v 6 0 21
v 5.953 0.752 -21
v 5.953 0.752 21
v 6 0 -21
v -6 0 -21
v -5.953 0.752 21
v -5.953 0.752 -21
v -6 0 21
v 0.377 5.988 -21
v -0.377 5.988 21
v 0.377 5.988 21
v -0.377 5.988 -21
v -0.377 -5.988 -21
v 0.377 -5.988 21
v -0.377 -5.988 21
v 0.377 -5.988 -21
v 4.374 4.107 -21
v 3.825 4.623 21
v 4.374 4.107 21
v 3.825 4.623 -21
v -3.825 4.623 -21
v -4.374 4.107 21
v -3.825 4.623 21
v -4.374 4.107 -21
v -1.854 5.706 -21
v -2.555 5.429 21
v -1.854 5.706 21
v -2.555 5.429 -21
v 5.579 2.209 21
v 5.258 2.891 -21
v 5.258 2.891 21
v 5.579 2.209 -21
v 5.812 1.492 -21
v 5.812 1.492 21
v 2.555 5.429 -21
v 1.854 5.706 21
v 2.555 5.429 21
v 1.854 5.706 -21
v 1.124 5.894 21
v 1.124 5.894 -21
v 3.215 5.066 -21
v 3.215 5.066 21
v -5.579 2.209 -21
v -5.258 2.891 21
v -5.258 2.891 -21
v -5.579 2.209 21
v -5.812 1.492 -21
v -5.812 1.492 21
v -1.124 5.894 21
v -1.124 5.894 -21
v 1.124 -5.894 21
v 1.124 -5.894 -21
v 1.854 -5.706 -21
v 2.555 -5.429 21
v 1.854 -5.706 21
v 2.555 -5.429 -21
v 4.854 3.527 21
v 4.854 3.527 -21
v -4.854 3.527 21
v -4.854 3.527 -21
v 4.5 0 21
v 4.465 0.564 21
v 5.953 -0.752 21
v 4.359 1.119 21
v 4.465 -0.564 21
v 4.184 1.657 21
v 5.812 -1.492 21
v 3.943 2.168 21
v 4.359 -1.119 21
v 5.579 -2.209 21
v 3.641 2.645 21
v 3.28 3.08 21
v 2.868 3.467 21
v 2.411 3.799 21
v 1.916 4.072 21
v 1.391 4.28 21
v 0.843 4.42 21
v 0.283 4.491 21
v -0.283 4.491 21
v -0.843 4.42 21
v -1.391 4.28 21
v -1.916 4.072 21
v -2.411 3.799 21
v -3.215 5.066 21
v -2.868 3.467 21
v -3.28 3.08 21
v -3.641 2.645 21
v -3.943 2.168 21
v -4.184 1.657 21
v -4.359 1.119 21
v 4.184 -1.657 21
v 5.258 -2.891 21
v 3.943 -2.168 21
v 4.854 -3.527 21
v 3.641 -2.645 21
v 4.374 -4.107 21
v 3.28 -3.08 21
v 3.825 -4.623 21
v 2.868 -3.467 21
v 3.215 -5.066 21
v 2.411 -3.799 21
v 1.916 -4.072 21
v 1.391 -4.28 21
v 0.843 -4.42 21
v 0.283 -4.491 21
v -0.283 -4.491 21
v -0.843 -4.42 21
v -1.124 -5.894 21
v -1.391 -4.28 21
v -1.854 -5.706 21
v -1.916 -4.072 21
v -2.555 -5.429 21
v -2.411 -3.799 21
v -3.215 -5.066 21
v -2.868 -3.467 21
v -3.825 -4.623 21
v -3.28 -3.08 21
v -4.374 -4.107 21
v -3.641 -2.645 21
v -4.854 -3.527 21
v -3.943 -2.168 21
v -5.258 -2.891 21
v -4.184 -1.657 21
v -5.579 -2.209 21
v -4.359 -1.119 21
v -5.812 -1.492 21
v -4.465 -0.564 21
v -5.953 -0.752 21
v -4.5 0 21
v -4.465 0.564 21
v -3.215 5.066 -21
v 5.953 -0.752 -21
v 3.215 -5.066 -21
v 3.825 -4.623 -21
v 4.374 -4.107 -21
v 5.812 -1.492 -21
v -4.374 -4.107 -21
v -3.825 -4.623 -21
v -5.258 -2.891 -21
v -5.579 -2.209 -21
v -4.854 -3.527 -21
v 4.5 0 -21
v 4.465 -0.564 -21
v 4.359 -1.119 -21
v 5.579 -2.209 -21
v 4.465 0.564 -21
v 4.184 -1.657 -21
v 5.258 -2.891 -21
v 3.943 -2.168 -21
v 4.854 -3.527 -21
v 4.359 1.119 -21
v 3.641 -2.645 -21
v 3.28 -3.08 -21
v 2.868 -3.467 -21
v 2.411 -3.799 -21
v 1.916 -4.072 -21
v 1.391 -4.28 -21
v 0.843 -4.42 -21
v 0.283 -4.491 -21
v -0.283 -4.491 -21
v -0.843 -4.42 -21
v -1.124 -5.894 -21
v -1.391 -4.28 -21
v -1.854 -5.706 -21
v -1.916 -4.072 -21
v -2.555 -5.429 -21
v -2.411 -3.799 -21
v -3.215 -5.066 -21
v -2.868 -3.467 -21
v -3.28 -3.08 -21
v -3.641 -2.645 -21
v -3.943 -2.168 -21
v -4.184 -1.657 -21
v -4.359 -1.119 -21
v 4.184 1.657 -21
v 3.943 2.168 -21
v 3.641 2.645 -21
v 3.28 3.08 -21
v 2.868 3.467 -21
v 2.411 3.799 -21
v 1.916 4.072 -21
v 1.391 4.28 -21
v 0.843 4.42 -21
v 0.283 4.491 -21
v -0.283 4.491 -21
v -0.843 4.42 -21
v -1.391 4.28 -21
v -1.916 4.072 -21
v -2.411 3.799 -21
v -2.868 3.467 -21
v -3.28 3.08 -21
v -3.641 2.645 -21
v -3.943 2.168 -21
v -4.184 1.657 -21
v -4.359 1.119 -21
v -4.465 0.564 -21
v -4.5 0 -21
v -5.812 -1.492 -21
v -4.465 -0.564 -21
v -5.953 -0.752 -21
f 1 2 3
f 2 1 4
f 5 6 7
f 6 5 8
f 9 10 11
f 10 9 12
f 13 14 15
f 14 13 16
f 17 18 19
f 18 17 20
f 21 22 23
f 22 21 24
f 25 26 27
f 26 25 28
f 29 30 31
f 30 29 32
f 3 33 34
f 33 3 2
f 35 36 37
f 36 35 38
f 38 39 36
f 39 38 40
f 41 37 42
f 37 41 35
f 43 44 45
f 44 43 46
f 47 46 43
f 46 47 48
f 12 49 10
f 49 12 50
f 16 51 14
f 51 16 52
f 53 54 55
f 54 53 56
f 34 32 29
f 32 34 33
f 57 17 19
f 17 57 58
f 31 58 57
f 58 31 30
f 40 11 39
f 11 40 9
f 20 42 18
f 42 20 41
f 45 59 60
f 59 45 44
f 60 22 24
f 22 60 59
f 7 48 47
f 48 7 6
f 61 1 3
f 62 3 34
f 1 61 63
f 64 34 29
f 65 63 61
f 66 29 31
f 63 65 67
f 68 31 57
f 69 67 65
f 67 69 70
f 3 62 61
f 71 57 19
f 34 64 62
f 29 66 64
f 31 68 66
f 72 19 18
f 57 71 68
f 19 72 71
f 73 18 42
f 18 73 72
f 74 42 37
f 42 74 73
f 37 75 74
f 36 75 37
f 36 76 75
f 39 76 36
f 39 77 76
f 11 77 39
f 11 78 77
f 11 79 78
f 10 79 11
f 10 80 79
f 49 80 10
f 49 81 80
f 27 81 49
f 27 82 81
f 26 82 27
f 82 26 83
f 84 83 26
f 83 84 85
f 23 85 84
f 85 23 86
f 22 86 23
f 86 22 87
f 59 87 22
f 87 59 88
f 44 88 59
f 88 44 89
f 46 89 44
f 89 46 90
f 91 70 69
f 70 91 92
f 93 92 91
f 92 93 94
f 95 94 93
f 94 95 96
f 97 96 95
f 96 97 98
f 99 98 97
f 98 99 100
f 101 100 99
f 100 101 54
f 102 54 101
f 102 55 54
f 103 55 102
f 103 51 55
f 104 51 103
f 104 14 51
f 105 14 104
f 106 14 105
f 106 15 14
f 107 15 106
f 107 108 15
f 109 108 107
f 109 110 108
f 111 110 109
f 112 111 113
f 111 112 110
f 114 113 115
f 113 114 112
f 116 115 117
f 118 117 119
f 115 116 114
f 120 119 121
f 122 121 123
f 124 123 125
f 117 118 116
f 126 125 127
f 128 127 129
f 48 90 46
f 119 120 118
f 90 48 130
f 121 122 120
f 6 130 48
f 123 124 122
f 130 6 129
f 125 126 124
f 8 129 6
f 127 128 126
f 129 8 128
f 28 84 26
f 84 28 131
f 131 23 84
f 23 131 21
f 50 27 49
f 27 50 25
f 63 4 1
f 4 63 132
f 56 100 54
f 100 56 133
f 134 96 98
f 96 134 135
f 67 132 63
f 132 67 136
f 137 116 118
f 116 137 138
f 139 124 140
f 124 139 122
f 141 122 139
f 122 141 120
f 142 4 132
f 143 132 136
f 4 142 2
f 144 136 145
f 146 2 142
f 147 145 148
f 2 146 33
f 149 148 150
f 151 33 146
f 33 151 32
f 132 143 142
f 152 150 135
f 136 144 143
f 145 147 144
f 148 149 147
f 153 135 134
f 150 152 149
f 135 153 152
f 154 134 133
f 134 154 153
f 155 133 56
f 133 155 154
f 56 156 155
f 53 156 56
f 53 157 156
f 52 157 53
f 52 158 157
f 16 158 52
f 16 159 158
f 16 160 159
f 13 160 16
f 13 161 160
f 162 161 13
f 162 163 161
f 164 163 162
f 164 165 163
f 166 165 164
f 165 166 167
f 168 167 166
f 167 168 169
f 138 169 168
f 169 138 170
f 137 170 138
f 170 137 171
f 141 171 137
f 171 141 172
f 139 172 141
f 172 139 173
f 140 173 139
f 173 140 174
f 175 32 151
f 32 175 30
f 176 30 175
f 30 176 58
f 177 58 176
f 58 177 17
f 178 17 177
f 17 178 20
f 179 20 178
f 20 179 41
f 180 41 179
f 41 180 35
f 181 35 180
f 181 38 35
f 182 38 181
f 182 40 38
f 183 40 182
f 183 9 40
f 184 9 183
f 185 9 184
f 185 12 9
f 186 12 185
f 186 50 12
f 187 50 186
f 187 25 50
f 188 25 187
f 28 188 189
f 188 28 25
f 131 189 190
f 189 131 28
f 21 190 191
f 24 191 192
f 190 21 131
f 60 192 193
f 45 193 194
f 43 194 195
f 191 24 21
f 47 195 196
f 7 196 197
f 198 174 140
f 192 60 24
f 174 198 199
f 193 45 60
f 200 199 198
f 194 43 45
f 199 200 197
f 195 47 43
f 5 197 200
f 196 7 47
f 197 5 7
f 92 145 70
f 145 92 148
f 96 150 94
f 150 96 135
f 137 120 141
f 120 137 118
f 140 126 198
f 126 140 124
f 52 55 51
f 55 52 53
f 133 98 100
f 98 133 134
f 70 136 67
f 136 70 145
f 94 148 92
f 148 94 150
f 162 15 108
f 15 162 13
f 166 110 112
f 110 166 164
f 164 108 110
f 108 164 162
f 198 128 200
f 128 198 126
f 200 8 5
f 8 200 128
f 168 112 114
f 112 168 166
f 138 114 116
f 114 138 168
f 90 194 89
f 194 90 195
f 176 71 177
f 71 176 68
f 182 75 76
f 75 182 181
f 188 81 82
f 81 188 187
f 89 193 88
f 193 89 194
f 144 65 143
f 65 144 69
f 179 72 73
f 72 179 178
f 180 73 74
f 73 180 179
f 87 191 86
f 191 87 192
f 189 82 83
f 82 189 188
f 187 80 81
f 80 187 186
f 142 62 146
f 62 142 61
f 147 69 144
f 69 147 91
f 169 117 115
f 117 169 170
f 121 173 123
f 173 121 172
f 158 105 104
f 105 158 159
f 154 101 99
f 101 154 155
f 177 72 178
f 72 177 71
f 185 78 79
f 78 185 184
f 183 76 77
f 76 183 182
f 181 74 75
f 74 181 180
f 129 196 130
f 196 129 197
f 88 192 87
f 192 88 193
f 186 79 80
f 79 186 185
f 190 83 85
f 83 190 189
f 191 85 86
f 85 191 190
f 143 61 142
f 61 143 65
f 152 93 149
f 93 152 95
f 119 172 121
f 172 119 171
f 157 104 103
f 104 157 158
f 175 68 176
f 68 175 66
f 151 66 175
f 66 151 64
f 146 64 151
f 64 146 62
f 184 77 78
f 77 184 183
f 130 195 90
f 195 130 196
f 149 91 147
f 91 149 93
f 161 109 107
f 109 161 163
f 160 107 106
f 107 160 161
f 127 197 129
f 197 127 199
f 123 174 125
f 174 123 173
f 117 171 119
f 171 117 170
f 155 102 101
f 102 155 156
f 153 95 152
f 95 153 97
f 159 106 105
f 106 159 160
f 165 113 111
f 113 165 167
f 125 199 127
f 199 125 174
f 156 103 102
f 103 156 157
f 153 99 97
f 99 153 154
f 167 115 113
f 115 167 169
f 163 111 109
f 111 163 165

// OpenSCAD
$fn = 50;


difference() {
	union() {
		translate(v = [0, 0, -21.0000000000]) {
			cylinder(h = 42, r = 6.0000000000);
		}
	}
	union() {
		translate(v = [0, 0, -100.0000000000]) {
			cylinder(h = 200, r = 4.5000000000);
		}
	}
}
